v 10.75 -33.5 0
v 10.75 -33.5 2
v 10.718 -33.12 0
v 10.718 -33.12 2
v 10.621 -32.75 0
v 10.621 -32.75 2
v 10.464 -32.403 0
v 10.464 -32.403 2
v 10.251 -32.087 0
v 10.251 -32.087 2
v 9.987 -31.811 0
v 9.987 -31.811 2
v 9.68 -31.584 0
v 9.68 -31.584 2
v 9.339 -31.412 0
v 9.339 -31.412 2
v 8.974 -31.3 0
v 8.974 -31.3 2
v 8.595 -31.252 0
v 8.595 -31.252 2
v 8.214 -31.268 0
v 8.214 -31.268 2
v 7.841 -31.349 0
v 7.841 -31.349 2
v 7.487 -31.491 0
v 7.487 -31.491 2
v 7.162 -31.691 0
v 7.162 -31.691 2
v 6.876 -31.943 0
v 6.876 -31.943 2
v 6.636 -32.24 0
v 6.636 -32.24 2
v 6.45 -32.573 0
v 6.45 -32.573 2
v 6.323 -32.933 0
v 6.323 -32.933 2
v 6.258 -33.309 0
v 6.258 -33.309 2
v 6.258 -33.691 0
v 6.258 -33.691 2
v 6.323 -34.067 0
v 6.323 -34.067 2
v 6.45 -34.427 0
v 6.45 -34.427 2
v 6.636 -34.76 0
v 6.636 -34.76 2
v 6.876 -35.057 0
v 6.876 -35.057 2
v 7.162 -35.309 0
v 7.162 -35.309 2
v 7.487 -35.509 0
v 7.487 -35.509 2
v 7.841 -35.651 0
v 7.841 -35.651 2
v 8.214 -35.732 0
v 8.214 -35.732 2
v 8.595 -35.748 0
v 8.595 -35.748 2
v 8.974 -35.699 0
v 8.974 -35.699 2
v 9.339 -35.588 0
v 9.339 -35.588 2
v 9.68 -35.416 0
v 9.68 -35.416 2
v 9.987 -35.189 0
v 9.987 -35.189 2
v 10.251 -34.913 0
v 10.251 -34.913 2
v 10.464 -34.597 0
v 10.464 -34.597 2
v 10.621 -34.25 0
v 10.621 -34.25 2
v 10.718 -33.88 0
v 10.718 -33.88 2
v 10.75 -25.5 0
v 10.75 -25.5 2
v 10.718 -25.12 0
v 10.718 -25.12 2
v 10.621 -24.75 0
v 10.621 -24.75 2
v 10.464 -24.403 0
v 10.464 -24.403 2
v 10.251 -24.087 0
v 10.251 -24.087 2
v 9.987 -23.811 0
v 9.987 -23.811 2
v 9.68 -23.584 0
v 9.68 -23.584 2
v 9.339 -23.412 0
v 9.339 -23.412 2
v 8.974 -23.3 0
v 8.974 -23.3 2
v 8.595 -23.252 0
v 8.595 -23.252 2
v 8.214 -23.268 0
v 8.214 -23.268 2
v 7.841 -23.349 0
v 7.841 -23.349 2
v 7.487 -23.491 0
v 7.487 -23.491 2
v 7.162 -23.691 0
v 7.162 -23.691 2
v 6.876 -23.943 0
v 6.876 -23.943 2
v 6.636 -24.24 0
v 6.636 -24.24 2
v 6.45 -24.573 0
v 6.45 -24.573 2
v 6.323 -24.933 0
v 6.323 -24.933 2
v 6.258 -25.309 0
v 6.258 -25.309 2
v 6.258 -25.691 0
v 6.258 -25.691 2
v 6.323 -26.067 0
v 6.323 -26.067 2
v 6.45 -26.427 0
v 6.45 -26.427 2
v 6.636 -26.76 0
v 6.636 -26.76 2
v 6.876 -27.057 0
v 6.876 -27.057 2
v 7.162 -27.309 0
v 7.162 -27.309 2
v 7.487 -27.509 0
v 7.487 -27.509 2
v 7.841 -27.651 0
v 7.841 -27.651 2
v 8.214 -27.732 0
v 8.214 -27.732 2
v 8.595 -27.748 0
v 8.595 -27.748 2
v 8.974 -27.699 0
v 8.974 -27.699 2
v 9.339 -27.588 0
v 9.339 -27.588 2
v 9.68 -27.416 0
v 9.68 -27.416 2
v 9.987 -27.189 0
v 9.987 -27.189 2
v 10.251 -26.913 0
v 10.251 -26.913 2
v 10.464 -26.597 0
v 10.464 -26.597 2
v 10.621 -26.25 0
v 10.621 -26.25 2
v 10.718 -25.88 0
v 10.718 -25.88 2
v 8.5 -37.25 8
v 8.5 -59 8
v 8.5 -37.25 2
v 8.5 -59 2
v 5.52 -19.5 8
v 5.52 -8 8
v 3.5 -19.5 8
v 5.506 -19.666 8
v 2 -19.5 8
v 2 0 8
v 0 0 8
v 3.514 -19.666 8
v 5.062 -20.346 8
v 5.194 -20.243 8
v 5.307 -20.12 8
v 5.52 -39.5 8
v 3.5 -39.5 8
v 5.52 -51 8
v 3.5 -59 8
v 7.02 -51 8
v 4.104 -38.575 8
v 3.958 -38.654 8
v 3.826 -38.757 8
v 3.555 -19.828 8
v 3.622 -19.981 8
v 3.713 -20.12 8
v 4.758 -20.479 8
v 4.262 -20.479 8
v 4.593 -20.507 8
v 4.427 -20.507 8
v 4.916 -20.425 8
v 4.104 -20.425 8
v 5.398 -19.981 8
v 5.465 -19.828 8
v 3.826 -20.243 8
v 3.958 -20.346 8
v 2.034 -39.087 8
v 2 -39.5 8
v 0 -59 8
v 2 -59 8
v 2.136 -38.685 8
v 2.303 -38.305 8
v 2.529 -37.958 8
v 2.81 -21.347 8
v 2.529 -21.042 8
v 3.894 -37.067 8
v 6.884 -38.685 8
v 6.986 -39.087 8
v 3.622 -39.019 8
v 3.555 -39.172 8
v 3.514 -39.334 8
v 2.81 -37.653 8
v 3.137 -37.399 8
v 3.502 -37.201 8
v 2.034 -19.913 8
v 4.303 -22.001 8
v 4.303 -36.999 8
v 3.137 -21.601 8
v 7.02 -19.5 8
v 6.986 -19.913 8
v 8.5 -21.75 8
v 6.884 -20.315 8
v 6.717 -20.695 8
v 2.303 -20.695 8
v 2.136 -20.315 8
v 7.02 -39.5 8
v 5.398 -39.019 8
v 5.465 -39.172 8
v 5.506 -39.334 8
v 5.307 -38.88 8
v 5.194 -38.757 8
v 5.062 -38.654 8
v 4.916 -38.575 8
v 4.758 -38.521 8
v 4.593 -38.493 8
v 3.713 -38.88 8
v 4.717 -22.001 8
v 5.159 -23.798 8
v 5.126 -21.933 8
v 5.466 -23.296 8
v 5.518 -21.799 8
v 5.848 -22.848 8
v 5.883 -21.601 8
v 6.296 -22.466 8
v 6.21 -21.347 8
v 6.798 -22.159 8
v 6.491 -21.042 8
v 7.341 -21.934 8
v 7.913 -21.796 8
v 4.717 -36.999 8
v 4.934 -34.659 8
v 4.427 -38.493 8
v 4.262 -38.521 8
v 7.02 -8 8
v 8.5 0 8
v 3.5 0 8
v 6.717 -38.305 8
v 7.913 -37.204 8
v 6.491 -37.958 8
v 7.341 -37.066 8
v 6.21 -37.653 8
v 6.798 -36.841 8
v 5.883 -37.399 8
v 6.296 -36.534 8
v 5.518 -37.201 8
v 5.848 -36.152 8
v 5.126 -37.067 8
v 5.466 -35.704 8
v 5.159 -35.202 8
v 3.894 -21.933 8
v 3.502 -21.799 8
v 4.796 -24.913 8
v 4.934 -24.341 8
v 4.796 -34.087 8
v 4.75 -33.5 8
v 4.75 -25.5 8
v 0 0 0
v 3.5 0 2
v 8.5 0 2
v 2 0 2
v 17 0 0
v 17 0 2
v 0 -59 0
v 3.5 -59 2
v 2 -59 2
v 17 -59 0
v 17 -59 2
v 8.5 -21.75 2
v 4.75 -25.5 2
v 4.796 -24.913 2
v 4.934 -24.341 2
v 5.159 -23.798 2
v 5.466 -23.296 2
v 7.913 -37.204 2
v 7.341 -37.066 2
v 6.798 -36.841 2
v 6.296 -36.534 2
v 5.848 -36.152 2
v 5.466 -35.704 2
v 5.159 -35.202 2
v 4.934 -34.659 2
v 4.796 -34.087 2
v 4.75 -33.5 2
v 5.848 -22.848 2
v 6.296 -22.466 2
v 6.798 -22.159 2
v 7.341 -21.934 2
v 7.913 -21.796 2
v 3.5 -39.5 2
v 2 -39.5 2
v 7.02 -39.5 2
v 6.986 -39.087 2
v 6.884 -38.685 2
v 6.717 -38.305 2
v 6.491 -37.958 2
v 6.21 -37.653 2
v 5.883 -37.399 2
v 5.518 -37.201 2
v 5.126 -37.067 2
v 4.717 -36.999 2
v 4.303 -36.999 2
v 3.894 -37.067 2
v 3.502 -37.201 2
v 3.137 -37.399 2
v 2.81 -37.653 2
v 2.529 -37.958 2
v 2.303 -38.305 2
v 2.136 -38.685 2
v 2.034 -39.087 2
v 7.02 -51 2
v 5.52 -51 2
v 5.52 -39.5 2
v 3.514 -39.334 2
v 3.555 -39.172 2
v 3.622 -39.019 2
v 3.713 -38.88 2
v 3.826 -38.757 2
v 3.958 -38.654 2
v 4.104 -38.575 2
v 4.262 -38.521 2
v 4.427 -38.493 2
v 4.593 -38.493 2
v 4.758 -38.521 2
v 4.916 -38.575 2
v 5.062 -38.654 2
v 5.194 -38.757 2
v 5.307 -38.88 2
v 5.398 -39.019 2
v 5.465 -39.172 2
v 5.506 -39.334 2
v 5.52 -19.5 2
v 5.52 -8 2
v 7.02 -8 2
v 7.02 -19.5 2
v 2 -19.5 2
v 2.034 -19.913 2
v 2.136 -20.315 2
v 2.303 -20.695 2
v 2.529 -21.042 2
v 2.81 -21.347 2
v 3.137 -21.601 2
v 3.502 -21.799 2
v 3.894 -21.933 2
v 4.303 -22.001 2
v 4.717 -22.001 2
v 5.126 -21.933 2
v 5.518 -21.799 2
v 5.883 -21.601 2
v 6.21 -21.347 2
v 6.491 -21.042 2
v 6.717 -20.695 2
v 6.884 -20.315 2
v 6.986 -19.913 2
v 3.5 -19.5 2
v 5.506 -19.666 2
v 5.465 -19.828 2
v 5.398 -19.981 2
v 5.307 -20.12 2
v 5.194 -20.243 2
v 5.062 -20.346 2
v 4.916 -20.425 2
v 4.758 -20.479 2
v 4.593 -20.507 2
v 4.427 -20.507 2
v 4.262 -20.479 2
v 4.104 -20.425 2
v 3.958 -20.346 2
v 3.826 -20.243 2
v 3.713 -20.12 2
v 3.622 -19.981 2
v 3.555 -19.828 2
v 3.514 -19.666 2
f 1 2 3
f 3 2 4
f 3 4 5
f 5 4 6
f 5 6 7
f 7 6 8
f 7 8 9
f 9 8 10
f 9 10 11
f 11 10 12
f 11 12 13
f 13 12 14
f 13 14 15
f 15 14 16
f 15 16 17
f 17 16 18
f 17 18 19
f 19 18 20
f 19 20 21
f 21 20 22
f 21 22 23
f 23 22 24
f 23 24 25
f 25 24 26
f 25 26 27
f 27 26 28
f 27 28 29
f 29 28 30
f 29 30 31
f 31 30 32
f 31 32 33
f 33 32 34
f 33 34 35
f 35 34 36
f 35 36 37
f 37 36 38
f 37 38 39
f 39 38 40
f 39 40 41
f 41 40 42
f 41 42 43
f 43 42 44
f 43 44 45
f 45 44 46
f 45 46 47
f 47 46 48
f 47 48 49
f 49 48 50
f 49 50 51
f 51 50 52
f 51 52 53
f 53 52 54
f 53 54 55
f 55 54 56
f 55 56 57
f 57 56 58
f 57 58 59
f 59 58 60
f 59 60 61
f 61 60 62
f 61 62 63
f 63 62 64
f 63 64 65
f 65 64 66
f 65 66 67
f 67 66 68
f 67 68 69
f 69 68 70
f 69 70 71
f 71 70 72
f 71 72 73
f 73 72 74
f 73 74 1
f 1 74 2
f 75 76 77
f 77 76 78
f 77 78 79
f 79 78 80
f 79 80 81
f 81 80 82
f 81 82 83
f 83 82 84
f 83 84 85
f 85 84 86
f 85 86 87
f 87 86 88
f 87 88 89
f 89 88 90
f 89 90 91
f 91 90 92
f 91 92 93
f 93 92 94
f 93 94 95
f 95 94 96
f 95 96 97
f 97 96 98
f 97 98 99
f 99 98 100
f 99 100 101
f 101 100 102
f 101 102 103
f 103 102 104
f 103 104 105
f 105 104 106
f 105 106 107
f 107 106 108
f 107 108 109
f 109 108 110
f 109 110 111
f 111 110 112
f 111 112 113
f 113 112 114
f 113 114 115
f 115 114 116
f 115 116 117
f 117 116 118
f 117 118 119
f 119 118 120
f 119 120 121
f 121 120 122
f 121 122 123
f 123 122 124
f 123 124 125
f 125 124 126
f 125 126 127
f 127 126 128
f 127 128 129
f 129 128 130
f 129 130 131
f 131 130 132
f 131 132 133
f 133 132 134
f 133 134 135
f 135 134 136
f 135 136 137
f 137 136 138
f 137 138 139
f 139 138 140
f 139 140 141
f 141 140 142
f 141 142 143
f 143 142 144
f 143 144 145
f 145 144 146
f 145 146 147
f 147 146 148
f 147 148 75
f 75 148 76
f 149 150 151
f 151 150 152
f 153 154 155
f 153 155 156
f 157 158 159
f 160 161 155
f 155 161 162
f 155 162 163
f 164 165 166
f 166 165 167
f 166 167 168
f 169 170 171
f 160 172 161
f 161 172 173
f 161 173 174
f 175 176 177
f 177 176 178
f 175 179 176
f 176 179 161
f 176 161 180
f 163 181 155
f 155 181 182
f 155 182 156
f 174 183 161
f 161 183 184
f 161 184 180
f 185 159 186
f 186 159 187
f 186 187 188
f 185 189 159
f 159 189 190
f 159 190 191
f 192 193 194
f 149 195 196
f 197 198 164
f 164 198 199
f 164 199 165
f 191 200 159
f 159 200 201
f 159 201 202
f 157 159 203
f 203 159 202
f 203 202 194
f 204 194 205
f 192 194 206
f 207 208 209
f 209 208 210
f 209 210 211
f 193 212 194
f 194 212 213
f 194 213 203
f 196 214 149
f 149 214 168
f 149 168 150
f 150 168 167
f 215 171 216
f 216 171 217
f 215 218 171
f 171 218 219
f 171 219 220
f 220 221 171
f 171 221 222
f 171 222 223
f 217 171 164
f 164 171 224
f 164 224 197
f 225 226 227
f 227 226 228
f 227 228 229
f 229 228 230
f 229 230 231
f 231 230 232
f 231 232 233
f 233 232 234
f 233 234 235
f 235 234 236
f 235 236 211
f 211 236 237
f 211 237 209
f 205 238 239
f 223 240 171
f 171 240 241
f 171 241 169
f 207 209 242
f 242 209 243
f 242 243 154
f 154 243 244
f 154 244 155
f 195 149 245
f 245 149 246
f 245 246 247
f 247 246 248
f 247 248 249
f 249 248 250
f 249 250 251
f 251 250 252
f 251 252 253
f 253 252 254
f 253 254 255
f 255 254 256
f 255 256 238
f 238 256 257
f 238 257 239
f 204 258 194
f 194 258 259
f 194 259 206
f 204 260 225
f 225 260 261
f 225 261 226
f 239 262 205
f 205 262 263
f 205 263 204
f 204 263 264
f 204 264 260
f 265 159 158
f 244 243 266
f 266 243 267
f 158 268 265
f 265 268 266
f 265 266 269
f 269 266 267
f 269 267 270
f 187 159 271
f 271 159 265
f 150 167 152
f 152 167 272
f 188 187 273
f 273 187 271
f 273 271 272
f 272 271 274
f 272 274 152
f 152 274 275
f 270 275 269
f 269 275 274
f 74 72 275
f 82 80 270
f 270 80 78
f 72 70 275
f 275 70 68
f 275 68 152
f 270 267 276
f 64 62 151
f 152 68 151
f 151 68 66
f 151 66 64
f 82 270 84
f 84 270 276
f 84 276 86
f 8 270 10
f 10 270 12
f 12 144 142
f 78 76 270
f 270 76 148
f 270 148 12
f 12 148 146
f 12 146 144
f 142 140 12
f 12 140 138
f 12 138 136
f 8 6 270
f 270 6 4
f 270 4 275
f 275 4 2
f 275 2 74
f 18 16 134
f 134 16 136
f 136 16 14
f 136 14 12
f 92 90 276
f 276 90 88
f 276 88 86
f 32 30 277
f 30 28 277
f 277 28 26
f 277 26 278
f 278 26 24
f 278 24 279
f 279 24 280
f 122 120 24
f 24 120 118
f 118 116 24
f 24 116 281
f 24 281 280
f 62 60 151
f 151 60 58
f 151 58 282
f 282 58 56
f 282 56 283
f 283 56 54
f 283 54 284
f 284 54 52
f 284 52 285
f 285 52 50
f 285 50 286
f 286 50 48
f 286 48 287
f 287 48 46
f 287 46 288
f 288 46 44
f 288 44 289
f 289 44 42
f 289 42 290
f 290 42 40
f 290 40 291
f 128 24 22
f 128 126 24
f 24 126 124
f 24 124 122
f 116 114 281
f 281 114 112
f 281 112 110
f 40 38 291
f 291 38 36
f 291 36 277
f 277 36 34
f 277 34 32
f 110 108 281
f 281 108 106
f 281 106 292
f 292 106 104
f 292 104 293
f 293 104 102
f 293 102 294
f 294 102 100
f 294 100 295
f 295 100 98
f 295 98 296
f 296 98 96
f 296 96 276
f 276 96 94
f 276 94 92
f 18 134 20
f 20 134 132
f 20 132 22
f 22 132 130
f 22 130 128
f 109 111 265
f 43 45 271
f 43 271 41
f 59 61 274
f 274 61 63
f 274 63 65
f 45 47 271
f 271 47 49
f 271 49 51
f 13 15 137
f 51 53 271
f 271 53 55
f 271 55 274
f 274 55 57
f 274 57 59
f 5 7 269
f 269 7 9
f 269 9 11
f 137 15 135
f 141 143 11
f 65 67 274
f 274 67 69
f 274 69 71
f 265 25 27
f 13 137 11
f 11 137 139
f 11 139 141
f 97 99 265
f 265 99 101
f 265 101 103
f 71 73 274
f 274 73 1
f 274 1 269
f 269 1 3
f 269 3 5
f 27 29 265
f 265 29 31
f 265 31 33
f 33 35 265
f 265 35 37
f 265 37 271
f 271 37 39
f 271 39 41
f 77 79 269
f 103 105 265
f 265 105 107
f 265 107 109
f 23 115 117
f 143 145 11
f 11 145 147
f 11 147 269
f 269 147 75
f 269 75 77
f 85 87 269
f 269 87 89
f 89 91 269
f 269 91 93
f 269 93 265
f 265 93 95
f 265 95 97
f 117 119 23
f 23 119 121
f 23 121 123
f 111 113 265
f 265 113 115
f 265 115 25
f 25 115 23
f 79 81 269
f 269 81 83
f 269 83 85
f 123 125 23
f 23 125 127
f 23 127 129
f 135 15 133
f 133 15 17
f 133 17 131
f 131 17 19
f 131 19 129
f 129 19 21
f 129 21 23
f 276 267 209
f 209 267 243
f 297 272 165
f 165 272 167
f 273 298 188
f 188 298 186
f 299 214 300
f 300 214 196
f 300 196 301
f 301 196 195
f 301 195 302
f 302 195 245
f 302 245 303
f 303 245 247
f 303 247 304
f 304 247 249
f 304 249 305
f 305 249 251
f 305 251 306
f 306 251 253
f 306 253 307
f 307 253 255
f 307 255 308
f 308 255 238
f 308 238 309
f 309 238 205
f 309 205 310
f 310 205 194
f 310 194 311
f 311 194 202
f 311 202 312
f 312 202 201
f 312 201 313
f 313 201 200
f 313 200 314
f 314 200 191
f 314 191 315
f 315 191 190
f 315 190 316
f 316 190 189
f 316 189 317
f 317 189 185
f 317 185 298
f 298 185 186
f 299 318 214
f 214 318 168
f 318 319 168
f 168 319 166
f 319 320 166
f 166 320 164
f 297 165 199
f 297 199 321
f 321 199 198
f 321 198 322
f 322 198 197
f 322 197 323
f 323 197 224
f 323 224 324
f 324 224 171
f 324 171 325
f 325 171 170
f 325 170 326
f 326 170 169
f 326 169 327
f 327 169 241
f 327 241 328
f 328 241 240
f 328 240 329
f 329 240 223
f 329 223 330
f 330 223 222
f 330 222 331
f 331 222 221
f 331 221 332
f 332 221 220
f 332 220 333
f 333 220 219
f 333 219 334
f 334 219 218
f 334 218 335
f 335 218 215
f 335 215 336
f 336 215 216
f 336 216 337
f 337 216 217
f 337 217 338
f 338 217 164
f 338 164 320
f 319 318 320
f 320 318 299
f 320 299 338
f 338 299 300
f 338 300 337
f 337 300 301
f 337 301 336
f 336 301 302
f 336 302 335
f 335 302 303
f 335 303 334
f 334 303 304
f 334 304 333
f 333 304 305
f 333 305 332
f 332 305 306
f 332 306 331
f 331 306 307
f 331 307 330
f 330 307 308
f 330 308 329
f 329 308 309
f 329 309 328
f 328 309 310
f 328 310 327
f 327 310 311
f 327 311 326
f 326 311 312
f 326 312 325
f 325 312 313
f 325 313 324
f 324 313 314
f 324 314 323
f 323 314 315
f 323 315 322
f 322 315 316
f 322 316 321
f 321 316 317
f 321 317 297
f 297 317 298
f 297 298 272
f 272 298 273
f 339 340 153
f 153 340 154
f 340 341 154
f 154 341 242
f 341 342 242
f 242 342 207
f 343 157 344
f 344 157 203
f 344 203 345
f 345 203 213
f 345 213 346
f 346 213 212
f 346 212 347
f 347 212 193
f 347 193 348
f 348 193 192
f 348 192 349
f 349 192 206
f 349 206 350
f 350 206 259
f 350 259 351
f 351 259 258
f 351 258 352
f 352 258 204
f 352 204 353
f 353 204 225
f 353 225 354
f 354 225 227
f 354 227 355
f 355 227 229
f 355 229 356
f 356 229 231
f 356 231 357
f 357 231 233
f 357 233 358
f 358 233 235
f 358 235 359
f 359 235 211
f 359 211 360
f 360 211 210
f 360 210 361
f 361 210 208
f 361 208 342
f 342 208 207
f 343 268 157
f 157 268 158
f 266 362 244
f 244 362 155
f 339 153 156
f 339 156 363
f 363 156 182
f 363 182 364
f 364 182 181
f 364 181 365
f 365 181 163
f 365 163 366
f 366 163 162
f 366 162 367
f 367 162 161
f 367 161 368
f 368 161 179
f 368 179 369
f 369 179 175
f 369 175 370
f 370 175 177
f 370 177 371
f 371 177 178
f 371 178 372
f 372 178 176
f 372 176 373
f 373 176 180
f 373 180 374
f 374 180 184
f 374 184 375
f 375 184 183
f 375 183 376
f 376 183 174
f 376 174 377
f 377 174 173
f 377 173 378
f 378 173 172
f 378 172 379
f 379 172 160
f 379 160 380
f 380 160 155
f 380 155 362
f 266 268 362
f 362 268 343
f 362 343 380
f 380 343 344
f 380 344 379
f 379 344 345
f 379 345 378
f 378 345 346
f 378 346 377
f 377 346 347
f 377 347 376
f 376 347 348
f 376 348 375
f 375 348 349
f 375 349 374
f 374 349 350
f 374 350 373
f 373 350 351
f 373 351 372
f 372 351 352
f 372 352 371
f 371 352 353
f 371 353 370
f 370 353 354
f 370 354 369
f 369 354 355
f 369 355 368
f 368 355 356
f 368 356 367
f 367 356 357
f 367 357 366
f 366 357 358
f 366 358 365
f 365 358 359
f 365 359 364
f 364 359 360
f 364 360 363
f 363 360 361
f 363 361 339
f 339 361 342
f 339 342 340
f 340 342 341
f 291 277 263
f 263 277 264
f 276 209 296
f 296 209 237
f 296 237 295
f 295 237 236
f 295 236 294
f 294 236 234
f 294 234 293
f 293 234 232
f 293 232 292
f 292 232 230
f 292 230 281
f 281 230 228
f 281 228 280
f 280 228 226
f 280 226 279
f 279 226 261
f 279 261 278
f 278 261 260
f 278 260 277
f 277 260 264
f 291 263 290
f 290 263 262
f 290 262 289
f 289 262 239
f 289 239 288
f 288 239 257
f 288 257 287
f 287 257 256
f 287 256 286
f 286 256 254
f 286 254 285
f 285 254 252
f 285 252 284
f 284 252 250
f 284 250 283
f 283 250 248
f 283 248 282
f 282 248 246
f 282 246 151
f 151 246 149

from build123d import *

# Parameters (mm, degrees)
ESQUISSE1_W             = 17
ESQUISSE1_H             = 59
BOSS_EXTRU_1_DEPTH      = 2
ESQUISSE2_W             = 8.5
ESQUISSE2_H             = 59
BOSS_EXTRU_2_DEPTH      = 6
ESQUISSE3_W             = 1.5
ESQUISSE3_H             = 19.5
ESQUISSE3_H_2           = 11.5
ENL_V_MAT_EXTRU_1_DEPTH = 6
ESQUISSE4_R             = 2.25
ENL_V_MAT_EXTRU_2_DEPTH = 14
ENL_V_MAT_EXTRU_3_DEPTH = 6


with BuildPart() as part:
    # Esquisse1 → Boss.-Extru.1 (new body)
    with BuildSketch(Plane.XY):
        with Locations((8.5, -29.5)):
            Rectangle(ESQUISSE1_W, ESQUISSE1_H)
    extrude(amount=BOSS_EXTRU_1_DEPTH)

    # Esquisse2 → Boss.-Extru.2 (add)
    with BuildSketch(Plane.XY.offset(2)):
        with Locations((4.25, -29.5)):
            Rectangle(ESQUISSE2_W, ESQUISSE2_H)
    extrude(amount=BOSS_EXTRU_2_DEPTH)

    # Esquisse3 → Enlèv. mat.-Extru.1 (cut)
    with BuildSketch(Plane.XY.offset(8)):
        with Locations((2.75, -49.25)):
            Rectangle(ESQUISSE3_W, ESQUISSE3_H)
        with BuildLine():
            ThreePointArc((3.5, -37.202199257), (2.408191843, -38.127967907), (2, -39.5))
            Line((2, -39.5), (3.5, -39.5))
            Line((3.5, -39.5), (3.5, -37.202199257))
        make_face()
        with BuildLine():
            Line((3.5, -37.202199257), (3.5, -39.5))
            ThreePointArc((3.5, -39.5), (4.509962751, -38.490037249), (5.519925502, -39.5))
            Line((5.519925502, -39.5), (5.519925502, -37.202199257))
            ThreePointArc((5.519925502, -37.202199257), (4.509962751, -36.990037249), (3.5, -37.202199257))
        make_face()
        with BuildLine():
            Line((5.519925502, -37.202199257), (5.519925502, -39.5))
            Line((5.519925502, -39.5), (7.019925502, -39.5))
            ThreePointArc((7.019925502, -39.5), (6.611733659, -38.127967907), (5.519925502, -37.202199257))
        make_face()
        with Locations((6.269925502, -45.25)):
            Rectangle(ESQUISSE3_W, ESQUISSE3_H_2)
        with Locations((6.269925502, -13.75)):
            Rectangle(ESQUISSE3_W, ESQUISSE3_H_2)
        with Locations((2.75, -9.75)):
            Rectangle(ESQUISSE3_W, ESQUISSE3_H)
        with BuildLine():
            Line((3.5, -19.5), (2, -19.5))
            ThreePointArc((2, -19.5), (2.408191843, -20.872032093), (3.5, -21.797800743))
            Line((3.5, -21.797800743), (3.5, -19.5))
        make_face()
        with BuildLine():
            ThreePointArc((5.519925502, -19.5), (4.509962751, -20.509962751), (3.5, -19.5))
            Line((3.5, -19.5), (3.5, -21.797800743))
            ThreePointArc((3.5, -21.797800743), (4.509962751, -22.009962751), (5.519925502, -21.797800743))
            Line((5.519925502, -21.797800743), (5.519925502, -19.5))
        make_face()
        with BuildLine():
            Line((7.019925502, -19.5), (5.519925502, -19.5))
            Line((5.519925502, -19.5), (5.519925502, -21.797800743))
            ThreePointArc((5.519925502, -21.797800743), (6.611733659, -20.872032093), (7.019925502, -19.5))
        make_face()
    extrude(amount=-ENL_V_MAT_EXTRU_1_DEPTH, mode=Mode.SUBTRACT)

    # Esquisse4 → Enlèv. mat.-Extru.2 (cut)
    with BuildSketch(Plane.XY.offset(8)):
        with Locations((8.5, -33.5)):
            Circle(ESQUISSE4_R)
        with Locations((8.5, -25.5)):
            Circle(ESQUISSE4_R)
    extrude(amount=-ENL_V_MAT_EXTRU_2_DEPTH, mode=Mode.SUBTRACT)

    # Esquisse5 → Enlèv. mat.-Extru.3 (cut)
    with BuildSketch(Plane.XY.offset(8)):
        with BuildLine():
            Line((4.75, -25.5), (4.75, -33.5))
            ThreePointArc((4.75, -33.5), (5.848349571, -30.848349571), (8.5, -29.75))
            Line((8.5, -29.75), (8.5, -29.25))
            ThreePointArc((8.5, -29.25), (5.848349571, -28.151650429), (4.75, -25.5))
        make_face()
        with BuildLine():
            ThreePointArc((8.5, -21.75), (5.848349571, -22.848349571), (4.75, -25.5))
            ThreePointArc((4.75, -25.5), (5.848349571, -28.151650429), (8.5, -29.25))
            Line((8.5, -29.25), (8.5, -27.75))
            ThreePointArc((8.5, -27.75), (6.25, -25.5), (8.5, -23.25))
            Line((8.5, -23.25), (8.5, -21.75))
        make_face()
        with BuildLine():
            ThreePointArc((12.25, -25.5), (11.151650429, -22.848349571), (8.5, -21.75))
            Line((8.5, -21.75), (8.5, -23.25))
            ThreePointArc((8.5, -23.25), (6.25, -25.5), (8.5, -27.75))
            Line((8.5, -27.75), (8.5, -29.25))
            ThreePointArc((8.5, -29.25), (11.151650429, -28.151650429), (12.25, -25.5))
        make_face()
        with BuildLine():
            ThreePointArc((8.5, -29.75), (5.848349571, -30.848349571), (4.75, -33.5))
            ThreePointArc((4.75, -33.5), (5.848349571, -36.151650429), (8.5, -37.25))
            Line((8.5, -37.25), (8.5, -35.75))
            ThreePointArc((8.5, -35.75), (6.25, -33.5), (8.5, -31.25))
            Line((8.5, -31.25), (8.5, -29.75))
        make_face()
        with BuildLine():
            ThreePointArc((12.25, -33.5), (11.151650429, -30.848349571), (8.5, -29.75))
            Line((8.5, -29.75), (8.5, -31.25))
            ThreePointArc((8.5, -31.25), (6.25, -33.5), (8.5, -35.75))
            Line((8.5, -35.75), (8.5, -37.25))
            ThreePointArc((8.5, -37.25), (11.151650429, -36.151650429), (12.25, -33.5))
        make_face()
    extrude(amount=-ENL_V_MAT_EXTRU_3_DEPTH, mode=Mode.SUBTRACT)


solid = part.part
